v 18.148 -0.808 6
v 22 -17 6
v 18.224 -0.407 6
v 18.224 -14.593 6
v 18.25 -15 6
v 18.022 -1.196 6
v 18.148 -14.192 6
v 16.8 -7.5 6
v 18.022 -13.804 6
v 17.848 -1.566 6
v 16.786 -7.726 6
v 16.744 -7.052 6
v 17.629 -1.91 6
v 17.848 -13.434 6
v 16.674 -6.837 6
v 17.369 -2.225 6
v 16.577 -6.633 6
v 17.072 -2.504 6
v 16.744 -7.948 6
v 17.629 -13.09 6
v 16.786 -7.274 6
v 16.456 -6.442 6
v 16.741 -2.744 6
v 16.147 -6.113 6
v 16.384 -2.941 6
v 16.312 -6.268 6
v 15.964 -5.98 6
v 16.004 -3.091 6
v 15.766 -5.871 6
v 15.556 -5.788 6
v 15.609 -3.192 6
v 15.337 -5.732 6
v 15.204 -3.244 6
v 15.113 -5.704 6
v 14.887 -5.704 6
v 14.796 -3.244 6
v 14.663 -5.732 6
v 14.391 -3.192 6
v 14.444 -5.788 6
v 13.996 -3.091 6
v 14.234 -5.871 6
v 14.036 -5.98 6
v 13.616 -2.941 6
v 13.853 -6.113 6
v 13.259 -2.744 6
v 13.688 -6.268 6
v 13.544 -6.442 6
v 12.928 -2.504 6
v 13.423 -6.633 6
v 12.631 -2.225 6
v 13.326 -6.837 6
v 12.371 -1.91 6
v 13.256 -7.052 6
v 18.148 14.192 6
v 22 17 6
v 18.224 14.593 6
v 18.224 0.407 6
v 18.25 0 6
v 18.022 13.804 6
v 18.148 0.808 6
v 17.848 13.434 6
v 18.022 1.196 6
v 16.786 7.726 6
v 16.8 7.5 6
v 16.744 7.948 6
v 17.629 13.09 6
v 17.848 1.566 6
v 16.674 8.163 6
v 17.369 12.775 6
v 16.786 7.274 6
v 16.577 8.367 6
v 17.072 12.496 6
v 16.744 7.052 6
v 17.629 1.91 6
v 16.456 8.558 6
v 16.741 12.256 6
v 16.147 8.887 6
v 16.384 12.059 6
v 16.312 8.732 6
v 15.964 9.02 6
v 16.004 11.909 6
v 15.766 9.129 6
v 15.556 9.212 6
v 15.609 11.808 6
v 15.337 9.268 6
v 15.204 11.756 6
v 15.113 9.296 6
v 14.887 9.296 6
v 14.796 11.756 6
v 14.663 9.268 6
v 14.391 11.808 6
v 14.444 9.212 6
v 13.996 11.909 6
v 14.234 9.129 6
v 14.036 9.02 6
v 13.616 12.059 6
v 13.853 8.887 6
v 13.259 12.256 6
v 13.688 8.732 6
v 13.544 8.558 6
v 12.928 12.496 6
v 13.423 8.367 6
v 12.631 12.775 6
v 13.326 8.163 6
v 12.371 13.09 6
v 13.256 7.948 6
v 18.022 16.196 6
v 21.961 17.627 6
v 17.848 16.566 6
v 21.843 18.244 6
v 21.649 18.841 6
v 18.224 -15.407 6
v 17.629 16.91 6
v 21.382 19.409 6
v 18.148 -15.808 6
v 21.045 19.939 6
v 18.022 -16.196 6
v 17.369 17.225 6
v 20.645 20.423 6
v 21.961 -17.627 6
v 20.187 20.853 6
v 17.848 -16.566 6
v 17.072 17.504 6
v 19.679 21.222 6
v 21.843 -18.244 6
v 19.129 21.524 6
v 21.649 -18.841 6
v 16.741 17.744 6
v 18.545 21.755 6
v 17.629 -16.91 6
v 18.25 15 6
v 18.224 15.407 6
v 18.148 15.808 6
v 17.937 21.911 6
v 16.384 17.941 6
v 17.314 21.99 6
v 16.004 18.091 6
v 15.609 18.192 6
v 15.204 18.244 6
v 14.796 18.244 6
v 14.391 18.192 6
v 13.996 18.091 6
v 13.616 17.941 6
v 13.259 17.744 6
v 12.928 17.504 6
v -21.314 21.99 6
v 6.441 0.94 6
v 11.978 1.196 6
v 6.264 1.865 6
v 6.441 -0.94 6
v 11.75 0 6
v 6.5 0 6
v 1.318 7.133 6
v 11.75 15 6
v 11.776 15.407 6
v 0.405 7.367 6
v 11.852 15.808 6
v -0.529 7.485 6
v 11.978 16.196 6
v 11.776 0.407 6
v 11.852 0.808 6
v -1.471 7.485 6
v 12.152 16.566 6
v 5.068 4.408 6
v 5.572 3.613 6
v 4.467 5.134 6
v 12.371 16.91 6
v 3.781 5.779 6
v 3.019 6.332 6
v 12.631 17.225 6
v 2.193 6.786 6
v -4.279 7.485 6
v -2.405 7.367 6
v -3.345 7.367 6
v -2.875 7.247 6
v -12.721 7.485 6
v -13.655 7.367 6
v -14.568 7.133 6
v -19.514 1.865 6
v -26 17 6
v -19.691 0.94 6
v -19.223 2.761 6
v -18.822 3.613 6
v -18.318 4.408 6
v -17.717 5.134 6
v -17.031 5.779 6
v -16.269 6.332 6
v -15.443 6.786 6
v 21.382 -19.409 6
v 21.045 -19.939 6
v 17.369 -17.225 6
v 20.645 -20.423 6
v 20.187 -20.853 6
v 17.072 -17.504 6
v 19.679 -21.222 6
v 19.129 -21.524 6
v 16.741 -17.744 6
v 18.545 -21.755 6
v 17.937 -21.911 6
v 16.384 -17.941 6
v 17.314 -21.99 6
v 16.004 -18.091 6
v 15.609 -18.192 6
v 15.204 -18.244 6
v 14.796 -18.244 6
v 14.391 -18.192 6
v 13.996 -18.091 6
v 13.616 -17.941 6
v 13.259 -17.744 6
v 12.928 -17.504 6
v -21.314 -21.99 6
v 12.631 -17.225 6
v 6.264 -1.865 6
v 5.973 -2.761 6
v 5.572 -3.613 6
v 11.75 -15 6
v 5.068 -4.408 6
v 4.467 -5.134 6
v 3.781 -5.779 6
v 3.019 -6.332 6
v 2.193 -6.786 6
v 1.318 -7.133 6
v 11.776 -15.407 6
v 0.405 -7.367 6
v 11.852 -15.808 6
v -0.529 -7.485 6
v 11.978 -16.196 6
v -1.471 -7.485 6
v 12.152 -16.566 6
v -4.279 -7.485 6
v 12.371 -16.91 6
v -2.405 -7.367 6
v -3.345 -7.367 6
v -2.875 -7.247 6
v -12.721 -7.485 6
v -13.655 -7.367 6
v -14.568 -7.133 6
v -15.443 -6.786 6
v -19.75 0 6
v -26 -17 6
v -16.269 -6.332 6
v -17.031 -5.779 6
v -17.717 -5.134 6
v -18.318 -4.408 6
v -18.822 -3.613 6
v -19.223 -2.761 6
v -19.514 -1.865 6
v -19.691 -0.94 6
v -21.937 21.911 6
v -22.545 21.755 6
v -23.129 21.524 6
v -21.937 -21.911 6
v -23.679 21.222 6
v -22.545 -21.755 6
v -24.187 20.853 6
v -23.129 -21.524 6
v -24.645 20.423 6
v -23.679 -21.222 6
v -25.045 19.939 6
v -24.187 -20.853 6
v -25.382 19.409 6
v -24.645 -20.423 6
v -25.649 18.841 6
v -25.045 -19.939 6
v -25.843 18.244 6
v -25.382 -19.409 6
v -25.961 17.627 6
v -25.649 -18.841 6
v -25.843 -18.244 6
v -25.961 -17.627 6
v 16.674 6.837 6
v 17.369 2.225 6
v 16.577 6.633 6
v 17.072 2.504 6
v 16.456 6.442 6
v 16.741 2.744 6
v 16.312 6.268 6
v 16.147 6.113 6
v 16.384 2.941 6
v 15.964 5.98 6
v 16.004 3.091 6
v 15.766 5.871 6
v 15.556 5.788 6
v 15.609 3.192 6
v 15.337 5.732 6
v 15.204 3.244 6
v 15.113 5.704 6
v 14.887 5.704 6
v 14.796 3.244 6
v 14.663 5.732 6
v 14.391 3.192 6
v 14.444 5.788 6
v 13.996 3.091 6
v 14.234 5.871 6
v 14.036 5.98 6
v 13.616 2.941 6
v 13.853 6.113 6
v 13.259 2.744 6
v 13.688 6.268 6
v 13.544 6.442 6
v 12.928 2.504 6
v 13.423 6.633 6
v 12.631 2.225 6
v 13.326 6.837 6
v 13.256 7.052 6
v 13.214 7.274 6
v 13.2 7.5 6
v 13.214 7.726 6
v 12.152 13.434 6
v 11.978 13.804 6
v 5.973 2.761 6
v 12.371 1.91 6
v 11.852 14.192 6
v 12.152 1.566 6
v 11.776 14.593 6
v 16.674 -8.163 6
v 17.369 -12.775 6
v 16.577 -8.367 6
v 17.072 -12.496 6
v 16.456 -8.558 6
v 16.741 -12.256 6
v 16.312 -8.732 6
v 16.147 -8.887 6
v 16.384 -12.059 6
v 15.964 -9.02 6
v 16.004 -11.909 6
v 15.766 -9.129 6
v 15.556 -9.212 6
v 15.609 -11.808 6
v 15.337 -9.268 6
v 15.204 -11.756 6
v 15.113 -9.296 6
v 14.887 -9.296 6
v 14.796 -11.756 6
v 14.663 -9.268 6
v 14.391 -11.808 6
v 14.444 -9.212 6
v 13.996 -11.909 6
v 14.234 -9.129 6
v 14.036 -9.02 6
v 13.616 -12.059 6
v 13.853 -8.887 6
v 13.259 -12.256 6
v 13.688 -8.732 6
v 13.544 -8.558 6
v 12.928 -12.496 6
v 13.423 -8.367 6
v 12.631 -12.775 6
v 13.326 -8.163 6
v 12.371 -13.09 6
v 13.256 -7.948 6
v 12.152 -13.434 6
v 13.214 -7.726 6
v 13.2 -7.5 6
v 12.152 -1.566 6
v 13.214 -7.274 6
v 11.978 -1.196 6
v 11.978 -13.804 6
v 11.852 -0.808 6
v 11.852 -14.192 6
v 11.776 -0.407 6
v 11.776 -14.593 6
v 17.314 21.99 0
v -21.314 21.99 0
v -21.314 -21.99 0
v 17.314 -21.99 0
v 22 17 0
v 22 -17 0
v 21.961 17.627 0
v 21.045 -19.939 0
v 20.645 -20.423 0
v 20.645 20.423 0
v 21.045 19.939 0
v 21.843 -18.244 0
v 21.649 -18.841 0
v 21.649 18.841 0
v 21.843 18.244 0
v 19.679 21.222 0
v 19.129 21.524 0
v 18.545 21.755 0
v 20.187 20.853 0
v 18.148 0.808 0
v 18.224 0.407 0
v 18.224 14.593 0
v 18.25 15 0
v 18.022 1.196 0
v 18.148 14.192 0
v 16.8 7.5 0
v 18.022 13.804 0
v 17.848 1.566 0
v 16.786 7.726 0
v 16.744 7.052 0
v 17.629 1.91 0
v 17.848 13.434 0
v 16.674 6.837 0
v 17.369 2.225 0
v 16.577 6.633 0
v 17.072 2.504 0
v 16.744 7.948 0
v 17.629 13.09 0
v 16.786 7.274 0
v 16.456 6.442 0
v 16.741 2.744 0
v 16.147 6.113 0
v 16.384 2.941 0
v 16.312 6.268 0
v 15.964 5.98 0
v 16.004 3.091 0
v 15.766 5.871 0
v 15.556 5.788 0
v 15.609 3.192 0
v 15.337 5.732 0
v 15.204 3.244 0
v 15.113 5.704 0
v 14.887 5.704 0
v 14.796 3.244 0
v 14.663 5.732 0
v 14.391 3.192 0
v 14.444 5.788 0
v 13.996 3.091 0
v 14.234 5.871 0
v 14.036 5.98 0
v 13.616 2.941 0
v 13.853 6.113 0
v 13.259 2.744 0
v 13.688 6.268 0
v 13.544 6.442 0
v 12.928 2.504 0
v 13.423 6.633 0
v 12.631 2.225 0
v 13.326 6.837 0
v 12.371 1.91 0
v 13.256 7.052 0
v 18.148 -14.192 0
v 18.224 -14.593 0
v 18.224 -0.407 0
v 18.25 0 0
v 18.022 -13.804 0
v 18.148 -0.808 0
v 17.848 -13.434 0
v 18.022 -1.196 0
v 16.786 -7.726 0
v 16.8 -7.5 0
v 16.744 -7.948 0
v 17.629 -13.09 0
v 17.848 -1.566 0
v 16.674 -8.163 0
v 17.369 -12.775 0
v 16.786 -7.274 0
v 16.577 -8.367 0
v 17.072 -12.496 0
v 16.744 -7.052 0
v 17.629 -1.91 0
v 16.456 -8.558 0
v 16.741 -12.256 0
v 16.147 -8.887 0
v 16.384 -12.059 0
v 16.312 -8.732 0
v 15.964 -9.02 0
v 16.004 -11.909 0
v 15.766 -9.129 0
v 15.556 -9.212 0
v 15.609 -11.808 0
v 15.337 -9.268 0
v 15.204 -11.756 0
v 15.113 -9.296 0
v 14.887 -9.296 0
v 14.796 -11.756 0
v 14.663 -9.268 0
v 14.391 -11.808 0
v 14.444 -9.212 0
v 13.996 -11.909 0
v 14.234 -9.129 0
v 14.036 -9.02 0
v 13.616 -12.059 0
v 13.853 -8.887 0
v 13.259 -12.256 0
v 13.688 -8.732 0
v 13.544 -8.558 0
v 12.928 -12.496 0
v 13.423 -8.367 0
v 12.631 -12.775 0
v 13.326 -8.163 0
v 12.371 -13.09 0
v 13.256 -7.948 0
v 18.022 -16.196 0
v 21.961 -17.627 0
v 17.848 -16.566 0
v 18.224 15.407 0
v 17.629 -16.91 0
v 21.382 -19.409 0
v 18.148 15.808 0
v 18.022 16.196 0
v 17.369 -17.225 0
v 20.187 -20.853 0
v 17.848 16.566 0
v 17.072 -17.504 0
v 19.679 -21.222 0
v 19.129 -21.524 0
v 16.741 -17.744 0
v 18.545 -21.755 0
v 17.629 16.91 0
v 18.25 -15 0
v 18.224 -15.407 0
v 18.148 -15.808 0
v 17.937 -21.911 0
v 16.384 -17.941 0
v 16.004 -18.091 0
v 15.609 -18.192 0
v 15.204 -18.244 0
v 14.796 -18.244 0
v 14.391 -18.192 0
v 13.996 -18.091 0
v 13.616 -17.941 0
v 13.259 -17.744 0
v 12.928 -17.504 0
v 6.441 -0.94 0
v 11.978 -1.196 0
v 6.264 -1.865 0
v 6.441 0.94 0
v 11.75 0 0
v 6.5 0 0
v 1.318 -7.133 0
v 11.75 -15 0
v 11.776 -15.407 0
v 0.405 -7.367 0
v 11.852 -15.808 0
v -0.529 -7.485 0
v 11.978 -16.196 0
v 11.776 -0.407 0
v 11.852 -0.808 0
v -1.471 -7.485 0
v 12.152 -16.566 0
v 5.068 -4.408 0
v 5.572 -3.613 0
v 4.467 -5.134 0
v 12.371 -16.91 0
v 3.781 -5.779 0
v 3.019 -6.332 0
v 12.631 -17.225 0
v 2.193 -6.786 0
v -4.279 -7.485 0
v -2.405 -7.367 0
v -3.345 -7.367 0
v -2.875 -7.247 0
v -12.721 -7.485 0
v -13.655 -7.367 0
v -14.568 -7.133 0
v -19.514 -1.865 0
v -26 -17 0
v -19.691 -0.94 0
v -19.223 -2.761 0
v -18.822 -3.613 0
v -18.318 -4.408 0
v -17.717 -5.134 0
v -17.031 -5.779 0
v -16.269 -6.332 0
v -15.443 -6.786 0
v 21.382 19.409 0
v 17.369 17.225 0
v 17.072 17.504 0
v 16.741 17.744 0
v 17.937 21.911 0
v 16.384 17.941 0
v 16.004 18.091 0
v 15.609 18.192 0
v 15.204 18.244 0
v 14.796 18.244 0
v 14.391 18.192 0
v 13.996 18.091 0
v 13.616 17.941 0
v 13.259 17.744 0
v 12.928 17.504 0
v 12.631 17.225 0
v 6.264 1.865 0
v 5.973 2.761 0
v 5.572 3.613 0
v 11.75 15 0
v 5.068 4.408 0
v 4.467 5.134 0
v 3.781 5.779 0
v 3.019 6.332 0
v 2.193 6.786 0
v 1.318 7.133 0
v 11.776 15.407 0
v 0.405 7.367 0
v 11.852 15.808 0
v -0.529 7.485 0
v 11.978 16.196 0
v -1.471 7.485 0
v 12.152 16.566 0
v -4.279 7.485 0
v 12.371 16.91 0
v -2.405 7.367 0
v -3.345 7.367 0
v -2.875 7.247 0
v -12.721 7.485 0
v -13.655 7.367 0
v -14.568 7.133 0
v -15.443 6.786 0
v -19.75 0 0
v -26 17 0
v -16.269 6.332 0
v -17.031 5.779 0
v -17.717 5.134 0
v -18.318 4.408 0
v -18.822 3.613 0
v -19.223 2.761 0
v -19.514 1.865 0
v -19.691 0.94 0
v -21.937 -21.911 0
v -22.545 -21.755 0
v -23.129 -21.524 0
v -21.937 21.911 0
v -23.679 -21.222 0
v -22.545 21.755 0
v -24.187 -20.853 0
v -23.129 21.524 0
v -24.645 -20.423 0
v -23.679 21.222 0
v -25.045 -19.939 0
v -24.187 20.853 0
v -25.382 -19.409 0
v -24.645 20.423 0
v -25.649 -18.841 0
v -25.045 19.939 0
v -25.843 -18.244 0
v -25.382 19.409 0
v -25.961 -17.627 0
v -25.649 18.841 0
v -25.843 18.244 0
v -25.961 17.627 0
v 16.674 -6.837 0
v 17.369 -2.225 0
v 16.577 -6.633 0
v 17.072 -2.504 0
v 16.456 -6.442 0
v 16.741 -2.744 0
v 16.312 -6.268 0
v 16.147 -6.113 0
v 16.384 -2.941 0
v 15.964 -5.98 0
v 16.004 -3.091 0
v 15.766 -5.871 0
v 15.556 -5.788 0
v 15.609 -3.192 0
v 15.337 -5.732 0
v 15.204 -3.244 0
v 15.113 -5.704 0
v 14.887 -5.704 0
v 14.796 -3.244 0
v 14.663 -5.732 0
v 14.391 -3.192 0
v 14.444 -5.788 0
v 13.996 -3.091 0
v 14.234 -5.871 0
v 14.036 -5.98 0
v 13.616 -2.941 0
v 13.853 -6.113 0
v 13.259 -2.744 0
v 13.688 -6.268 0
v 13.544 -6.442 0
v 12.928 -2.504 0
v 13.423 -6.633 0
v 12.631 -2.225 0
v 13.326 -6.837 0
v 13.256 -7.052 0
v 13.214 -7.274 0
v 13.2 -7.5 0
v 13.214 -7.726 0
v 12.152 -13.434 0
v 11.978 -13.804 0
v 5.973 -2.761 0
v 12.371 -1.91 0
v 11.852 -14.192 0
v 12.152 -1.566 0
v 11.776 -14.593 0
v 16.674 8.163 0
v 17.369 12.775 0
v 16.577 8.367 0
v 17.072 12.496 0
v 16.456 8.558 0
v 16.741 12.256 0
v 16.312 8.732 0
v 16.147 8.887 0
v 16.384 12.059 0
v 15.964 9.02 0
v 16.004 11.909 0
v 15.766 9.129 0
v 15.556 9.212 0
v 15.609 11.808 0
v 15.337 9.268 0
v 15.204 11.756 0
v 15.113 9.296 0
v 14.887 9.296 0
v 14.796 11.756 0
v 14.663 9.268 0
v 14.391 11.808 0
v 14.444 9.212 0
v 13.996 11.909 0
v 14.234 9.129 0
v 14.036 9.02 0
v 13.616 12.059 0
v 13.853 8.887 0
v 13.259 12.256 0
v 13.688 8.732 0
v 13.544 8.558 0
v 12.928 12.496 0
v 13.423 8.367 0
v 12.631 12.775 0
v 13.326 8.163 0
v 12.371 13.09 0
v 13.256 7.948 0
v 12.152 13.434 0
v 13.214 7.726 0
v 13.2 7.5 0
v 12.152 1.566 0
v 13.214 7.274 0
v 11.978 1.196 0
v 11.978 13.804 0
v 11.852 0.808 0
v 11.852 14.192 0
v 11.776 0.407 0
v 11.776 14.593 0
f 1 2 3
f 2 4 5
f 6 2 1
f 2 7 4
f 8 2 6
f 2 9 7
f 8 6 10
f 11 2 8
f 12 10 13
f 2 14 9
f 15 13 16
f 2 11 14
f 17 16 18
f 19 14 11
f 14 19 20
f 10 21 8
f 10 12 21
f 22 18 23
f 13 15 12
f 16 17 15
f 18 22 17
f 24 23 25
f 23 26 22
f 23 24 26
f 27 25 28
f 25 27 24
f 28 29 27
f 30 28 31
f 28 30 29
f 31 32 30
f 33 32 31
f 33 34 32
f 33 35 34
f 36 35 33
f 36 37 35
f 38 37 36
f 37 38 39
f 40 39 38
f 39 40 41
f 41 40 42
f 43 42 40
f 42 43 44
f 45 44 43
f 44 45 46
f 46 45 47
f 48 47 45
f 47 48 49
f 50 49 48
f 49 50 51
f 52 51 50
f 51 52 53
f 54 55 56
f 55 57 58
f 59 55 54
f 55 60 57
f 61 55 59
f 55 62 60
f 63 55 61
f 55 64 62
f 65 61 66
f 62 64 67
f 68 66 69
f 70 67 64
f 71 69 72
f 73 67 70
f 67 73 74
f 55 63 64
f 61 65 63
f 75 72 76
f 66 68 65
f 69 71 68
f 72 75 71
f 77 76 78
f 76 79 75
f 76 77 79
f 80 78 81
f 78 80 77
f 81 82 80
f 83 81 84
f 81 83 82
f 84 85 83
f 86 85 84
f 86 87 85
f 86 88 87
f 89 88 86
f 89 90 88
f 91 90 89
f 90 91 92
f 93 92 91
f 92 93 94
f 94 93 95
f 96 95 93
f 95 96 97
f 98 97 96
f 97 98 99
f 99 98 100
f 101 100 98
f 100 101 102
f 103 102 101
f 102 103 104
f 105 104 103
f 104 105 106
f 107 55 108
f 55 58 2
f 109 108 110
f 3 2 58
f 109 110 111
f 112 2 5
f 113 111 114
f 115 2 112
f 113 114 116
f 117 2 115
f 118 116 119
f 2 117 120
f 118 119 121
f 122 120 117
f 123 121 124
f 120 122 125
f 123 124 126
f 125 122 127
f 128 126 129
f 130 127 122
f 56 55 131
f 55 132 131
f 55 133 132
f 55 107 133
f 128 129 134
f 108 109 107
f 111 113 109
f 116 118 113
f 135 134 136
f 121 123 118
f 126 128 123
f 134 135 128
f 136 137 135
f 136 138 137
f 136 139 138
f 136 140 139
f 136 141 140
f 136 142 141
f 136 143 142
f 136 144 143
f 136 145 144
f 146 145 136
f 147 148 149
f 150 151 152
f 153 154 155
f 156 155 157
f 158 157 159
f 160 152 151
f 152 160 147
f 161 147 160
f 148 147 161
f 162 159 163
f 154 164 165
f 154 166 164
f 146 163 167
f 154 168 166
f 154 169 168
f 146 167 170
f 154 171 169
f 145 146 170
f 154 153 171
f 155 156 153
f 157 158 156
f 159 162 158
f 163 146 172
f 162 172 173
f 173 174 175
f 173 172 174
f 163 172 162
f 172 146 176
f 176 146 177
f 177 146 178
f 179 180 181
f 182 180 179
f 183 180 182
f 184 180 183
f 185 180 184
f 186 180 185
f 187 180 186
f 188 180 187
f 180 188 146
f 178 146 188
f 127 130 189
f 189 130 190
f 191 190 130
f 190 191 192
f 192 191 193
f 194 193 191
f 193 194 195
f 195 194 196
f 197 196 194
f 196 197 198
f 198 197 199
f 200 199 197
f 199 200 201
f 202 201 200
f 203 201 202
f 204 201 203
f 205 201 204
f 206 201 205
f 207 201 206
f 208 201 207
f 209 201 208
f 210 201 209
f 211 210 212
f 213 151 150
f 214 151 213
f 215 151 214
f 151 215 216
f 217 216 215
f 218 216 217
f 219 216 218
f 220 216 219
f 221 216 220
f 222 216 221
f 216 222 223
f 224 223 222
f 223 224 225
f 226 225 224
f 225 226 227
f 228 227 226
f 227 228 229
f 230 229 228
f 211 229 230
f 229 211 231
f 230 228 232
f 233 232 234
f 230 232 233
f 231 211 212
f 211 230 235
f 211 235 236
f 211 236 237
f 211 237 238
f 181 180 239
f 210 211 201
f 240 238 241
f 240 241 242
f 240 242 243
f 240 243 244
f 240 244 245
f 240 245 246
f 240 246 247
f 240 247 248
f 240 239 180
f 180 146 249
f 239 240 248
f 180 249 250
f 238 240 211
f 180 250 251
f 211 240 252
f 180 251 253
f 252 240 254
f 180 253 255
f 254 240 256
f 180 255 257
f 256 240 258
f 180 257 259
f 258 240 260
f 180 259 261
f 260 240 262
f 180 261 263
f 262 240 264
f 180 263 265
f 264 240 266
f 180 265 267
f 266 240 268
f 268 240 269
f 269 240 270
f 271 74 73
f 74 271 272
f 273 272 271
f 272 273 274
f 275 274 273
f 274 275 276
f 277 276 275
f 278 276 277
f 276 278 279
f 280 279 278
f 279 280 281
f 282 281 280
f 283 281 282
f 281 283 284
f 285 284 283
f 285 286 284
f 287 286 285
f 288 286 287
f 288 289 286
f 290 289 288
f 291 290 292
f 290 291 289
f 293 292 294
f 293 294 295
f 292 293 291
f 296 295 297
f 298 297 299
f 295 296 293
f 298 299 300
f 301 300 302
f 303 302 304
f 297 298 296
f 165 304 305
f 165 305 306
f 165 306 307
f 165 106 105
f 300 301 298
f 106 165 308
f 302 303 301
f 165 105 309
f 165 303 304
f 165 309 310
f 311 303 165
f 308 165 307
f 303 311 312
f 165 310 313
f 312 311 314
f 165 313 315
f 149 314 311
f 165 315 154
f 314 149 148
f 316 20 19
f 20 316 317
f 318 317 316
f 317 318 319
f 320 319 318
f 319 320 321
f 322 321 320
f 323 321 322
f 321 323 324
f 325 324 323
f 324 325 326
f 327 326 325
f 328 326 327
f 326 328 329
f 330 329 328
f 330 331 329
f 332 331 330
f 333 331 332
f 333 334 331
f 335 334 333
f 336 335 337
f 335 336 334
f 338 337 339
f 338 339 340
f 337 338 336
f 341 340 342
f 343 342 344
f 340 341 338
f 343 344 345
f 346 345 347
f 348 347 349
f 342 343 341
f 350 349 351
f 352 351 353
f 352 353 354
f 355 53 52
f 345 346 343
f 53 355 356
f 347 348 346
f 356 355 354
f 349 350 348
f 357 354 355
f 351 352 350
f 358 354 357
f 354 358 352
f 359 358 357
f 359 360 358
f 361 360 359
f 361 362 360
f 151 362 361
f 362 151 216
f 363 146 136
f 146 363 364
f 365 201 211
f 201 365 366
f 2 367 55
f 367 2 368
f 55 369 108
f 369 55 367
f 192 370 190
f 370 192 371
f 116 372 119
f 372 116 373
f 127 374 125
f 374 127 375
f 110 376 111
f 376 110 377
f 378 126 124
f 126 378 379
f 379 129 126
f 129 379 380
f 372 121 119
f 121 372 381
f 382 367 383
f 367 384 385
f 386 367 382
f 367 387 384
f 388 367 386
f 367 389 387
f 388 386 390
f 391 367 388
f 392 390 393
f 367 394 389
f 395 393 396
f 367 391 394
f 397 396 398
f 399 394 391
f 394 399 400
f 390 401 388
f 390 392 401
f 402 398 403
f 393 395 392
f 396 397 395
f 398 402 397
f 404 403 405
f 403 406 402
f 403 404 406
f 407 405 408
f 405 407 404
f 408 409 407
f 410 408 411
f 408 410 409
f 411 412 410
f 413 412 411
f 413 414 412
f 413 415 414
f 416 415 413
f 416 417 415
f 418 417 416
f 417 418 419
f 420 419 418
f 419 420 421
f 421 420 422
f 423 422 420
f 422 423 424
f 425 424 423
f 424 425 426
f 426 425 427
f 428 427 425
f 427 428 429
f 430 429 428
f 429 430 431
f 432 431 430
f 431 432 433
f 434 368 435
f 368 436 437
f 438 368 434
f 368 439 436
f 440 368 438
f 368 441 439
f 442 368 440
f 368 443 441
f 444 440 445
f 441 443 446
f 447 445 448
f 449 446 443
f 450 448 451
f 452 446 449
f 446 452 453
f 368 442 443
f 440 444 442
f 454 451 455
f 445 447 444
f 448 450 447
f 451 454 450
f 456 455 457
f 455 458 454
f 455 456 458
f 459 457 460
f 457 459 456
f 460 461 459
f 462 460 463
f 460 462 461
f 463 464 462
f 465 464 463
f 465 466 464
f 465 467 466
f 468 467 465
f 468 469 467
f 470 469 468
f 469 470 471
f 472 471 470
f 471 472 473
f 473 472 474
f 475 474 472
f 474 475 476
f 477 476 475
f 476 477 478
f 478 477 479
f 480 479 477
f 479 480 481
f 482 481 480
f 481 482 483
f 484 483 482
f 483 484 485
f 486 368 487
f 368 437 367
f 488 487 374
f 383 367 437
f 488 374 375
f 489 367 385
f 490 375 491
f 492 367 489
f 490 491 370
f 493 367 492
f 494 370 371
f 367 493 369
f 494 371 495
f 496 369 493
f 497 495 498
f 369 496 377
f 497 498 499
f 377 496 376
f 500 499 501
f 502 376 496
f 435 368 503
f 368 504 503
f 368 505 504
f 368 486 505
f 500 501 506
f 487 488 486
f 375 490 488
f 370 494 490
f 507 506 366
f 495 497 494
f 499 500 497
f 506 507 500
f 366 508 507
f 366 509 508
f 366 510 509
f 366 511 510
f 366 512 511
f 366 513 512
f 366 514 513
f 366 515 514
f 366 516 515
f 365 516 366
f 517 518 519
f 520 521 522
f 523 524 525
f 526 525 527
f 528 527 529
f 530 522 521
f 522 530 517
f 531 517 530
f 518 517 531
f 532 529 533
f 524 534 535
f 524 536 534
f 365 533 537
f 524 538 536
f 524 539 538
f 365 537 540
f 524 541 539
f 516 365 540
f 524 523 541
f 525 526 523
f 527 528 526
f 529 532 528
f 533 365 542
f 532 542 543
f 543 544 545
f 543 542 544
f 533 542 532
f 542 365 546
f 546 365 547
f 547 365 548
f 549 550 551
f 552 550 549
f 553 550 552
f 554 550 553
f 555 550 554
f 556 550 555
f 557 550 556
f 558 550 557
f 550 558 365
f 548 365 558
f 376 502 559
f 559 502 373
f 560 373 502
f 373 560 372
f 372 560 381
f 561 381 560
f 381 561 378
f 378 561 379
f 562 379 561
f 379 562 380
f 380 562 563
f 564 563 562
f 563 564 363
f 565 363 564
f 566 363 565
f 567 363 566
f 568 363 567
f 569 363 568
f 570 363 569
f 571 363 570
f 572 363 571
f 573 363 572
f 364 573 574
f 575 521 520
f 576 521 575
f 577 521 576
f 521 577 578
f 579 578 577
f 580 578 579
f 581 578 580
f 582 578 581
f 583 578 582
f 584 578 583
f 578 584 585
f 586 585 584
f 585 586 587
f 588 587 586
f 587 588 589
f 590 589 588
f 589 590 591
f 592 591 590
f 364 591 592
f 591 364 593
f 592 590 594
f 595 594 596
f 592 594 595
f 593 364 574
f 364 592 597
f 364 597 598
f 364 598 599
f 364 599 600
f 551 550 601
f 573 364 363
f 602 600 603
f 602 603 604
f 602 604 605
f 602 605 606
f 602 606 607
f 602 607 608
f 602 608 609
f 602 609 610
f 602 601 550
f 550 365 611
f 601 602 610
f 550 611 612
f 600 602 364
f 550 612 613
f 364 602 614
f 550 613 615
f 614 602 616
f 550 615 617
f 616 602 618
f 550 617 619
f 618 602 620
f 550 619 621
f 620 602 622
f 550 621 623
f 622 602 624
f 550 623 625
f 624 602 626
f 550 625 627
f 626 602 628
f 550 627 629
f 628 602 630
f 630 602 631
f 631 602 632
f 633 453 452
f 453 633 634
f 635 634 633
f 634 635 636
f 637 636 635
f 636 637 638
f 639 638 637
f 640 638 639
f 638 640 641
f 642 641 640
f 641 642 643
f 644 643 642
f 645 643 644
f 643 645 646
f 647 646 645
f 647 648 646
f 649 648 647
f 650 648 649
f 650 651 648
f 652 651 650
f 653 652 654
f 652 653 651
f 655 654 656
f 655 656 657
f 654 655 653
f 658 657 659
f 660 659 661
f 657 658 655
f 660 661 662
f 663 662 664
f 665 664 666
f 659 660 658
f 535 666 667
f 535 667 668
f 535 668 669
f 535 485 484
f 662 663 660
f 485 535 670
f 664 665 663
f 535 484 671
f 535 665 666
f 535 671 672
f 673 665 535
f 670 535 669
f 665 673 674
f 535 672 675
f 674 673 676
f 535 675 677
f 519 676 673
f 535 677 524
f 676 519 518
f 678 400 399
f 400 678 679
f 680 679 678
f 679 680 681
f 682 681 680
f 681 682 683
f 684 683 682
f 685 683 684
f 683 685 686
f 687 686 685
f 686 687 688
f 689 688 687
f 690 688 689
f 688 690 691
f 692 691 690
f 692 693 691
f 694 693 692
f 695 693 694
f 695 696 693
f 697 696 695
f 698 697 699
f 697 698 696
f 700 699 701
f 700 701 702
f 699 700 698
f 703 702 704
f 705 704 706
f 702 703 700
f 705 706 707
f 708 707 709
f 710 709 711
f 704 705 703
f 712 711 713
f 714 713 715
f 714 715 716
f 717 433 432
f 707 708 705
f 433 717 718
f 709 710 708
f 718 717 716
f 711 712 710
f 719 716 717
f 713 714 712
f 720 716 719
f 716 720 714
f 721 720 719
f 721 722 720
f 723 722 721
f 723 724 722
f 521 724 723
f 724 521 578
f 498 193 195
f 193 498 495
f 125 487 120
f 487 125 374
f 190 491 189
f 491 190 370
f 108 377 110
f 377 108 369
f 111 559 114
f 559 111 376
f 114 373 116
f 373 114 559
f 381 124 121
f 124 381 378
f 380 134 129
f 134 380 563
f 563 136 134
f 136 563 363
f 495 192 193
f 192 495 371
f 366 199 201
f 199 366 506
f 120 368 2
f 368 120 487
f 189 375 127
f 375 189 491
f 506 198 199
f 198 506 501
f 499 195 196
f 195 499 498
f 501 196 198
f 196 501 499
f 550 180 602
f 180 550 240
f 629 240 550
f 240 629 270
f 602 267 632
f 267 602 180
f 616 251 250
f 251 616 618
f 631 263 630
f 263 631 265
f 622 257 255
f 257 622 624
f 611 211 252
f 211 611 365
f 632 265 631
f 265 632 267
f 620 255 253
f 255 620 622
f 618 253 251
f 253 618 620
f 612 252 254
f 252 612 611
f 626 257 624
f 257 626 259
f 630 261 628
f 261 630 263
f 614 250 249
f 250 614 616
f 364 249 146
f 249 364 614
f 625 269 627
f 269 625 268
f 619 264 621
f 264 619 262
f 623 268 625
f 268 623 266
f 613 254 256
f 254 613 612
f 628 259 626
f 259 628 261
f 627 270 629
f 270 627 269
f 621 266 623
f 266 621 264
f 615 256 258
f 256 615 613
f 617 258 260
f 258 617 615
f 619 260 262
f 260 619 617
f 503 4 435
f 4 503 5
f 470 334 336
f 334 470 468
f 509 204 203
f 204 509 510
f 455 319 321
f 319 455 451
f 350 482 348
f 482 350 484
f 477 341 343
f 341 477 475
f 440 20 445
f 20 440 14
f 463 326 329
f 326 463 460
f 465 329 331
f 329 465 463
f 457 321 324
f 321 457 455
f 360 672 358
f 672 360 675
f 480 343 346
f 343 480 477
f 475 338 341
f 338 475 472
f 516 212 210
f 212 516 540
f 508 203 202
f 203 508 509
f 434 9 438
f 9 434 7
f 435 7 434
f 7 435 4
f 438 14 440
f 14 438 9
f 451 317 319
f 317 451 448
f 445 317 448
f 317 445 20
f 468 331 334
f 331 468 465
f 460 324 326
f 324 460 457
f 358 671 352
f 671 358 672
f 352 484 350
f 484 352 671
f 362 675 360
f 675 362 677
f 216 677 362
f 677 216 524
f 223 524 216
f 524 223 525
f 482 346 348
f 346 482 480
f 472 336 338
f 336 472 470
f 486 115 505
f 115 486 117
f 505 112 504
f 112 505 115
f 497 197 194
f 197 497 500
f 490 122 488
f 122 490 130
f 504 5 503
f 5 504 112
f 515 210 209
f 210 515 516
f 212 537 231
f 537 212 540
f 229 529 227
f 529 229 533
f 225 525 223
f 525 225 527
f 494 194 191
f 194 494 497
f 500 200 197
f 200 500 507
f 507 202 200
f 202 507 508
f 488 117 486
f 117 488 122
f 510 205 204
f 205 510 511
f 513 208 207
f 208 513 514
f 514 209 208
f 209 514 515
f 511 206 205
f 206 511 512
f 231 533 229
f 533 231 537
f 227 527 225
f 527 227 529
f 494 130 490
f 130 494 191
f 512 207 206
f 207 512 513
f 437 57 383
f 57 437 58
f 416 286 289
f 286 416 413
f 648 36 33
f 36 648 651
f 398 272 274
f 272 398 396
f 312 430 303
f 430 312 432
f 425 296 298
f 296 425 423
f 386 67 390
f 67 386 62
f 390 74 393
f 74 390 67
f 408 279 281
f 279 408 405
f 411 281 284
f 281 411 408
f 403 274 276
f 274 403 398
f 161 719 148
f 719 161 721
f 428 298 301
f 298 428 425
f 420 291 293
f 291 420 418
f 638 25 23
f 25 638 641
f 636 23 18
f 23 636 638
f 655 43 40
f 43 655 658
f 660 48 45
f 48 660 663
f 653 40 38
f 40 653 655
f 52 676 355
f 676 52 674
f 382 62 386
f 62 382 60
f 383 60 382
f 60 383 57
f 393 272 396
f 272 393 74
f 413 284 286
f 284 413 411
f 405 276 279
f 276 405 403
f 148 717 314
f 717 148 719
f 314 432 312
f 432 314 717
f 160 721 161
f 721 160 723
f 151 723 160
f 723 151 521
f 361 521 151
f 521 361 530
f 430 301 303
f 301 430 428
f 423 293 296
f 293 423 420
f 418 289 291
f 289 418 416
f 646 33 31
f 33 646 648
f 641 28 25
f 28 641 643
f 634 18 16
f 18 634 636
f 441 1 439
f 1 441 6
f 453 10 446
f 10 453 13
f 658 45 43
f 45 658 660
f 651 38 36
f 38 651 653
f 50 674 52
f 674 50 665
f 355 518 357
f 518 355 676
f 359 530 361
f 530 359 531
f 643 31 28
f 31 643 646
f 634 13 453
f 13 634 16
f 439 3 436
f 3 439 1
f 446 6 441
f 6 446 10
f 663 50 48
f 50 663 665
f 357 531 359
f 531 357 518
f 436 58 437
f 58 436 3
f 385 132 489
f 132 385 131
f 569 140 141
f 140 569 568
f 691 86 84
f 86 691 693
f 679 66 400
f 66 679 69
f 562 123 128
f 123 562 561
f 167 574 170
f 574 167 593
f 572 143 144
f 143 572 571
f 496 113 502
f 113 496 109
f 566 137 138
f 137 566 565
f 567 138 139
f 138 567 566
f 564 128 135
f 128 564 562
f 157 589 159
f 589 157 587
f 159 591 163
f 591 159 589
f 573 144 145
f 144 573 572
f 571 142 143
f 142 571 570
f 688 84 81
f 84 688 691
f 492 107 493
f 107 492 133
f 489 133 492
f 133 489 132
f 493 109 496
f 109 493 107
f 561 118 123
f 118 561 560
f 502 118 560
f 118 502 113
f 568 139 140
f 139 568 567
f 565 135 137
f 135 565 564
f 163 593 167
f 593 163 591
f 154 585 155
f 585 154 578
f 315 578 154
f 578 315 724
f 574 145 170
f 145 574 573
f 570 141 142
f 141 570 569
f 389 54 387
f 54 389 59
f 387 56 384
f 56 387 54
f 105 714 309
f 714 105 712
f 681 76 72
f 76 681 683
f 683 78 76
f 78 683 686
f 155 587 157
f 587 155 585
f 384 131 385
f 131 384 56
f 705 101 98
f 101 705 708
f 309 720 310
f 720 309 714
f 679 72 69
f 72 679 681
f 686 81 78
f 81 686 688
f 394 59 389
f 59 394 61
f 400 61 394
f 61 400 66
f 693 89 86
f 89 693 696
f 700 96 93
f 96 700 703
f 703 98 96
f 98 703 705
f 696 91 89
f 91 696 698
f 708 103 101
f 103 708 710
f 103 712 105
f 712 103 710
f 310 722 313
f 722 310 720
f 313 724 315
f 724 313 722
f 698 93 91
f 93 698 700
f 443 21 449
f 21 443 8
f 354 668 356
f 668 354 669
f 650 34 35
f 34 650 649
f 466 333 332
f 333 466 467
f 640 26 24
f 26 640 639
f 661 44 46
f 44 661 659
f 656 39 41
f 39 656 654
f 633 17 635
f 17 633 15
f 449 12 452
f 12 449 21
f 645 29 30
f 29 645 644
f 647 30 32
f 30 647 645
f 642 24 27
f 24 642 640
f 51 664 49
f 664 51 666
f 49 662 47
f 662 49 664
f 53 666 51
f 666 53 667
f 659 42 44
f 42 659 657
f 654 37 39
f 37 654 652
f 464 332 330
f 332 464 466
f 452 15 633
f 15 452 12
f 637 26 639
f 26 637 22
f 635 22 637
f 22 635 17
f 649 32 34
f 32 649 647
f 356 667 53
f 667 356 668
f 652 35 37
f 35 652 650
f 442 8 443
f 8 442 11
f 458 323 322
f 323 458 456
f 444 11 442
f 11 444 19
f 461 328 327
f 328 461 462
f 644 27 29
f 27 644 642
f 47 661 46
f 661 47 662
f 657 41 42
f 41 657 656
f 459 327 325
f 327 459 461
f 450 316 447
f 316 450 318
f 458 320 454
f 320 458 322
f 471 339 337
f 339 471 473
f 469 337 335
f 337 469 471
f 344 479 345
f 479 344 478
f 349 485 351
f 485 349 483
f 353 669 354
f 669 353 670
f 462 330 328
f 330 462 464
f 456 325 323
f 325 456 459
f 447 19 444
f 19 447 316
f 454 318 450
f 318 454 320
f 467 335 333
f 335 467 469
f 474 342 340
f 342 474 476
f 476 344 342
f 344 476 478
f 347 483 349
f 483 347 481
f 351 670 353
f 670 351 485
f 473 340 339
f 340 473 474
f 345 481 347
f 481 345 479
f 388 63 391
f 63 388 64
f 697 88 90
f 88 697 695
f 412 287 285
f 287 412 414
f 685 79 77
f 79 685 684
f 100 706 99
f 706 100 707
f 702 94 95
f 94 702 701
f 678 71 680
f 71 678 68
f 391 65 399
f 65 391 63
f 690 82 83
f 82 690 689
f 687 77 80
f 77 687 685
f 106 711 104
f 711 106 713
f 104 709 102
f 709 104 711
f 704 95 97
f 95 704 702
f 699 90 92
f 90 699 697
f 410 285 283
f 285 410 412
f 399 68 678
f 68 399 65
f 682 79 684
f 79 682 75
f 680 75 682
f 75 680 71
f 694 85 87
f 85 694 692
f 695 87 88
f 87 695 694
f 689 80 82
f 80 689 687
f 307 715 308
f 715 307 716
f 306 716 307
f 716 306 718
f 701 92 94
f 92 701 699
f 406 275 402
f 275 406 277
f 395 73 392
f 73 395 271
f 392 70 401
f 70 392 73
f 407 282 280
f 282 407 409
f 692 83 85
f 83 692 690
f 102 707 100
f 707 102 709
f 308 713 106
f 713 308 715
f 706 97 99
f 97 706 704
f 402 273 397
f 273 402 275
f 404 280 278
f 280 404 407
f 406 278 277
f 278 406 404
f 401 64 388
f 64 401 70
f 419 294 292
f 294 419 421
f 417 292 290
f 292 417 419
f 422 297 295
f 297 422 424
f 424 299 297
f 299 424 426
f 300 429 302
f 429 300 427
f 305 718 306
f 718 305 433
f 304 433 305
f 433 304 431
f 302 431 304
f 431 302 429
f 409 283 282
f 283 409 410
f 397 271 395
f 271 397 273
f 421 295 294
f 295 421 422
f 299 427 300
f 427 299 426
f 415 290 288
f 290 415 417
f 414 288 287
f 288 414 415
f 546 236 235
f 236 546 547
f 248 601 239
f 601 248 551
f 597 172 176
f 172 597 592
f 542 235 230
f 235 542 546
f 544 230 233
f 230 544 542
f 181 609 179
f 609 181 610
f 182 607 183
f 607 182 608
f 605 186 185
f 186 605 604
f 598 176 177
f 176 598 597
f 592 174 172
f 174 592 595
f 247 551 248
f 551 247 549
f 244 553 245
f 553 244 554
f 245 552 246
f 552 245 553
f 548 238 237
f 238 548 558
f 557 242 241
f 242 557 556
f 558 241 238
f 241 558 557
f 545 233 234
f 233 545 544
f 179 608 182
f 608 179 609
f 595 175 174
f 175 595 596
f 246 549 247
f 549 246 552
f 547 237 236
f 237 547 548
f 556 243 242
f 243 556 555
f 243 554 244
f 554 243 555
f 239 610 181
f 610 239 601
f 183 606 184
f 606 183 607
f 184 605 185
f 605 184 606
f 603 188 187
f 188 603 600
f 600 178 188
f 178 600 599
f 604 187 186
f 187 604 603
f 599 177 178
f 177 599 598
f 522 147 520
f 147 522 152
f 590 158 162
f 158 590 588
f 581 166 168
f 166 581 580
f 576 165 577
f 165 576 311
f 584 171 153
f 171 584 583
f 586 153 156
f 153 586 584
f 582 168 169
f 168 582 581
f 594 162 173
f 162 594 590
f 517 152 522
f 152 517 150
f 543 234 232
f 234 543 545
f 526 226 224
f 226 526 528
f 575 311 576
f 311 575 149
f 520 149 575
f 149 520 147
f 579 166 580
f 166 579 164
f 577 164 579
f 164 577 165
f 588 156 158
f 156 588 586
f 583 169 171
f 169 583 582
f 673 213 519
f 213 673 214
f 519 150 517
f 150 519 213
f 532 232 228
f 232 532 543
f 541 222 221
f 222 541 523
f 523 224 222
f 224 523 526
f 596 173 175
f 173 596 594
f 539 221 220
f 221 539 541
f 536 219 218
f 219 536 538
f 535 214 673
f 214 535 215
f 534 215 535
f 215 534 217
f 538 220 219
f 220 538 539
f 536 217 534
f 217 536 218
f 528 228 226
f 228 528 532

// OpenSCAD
$fn = 50;


difference() {
	union() {
		hull() {
			translate(v = [-17.0000000000, 17.0000000000, 0]) {
				cylinder(h = 6, r = 5);
			}
			translate(v = [17.0000000000, 17.0000000000, 0]) {
				cylinder(h = 6, r = 5);
			}
			translate(v = [-17.0000000000, -17.0000000000, 0]) {
				cylinder(h = 6, r = 5);
			}
			translate(v = [17.0000000000, -17.0000000000, 0]) {
				cylinder(h = 6, r = 5);
			}
		}
		translate(v = [-4.0000000000, 0, 0]) {
			hull() {
				translate(v = [-17.0000000000, 17.0000000000, 0]) {
					cylinder(h = 6, r = 5);
				}
				translate(v = [17.0000000000, 17.0000000000, 0]) {
					cylinder(h = 6, r = 5);
				}
				translate(v = [-17.0000000000, -17.0000000000, 0]) {
					cylinder(h = 6, r = 5);
				}
				translate(v = [17.0000000000, -17.0000000000, 0]) {
					cylinder(h = 6, r = 5);
				}
			}
		}
	}
	union() {
		translate(v = [15.0000000000, -15.0000000000, -100.0000000000]) {
			cylinder(h = 200, r = 3.2500000000);
		}
		translate(v = [15.0000000000, 0.0000000000, -100.0000000000]) {
			cylinder(h = 200, r = 3.2500000000);
		}
		translate(v = [15.0000000000, 15.0000000000, -100.0000000000]) {
			cylinder(h = 200, r = 3.2500000000);
		}
		translate(v = [15.0000000000, -15.0000000000, -100.0000000000]) {
			cylinder(h = 200, r = 3.2500000000);
		}
		translate(v = [15.0000000000, 0.0000000000, -100.0000000000]) {
			cylinder(h = 200, r = 3.2500000000);
		}
		translate(v = [15.0000000000, 15.0000000000, -100.0000000000]) {
			cylinder(h = 200, r = 3.2500000000);
		}
		translate(v = [15.0000000000, -15.0000000000, -100.0000000000]) {
			cylinder(h = 200, r = 1.8000000000);
		}
		translate(v = [15.0000000000, -7.5000000000, -100.0000000000]) {
			cylinder(h = 200, r = 1.8000000000);
		}
		translate(v = [15.0000000000, 0.0000000000, -100.0000000000]) {
			cylinder(h = 200, r = 1.8000000000);
		}
		translate(v = [15.0000000000, 7.5000000000, -100.0000000000]) {
			cylinder(h = 200, r = 1.8000000000);
		}
		translate(v = [15.0000000000, 15.0000000000, -100.0000000000]) {
			cylinder(h = 200, r = 1.8000000000);
		}
		translate(v = [15.0000000000, -15.0000000000, -100.0000000000]) {
			cylinder(h = 200, r = 1.8000000000);
		}
		translate(v = [15.0000000000, -7.5000000000, -100.0000000000]) {
			cylinder(h = 200, r = 1.8000000000);
		}
		translate(v = [15.0000000000, 0.0000000000, -100.0000000000]) {
			cylinder(h = 200, r = 1.8000000000);
		}
		translate(v = [15.0000000000, 7.5000000000, -100.0000000000]) {
			cylinder(h = 200, r = 1.8000000000);
		}
		translate(v = [15.0000000000, 15.0000000000, -100.0000000000]) {
			cylinder(h = 200, r = 1.8000000000);
		}
		translate(v = [15.0000000000, -15.0000000000, -100.0000000000]) {
			cylinder(h = 200, r = 1.8000000000);
		}
		translate(v = [15.0000000000, -7.5000000000, -100.0000000000]) {
			cylinder(h = 200, r = 1.8000000000);
		}
		translate(v = [15.0000000000, 0.0000000000, -100.0000000000]) {
			cylinder(h = 200, r = 1.8000000000);
		}
		translate(v = [15.0000000000, 7.5000000000, -100.0000000000]) {
			cylinder(h = 200, r = 1.8000000000);
		}
		translate(v = [15.0000000000, 15.0000000000, -100.0000000000]) {
			cylinder(h = 200, r = 1.8000000000);
		}
		translate(v = [-8.5000000000, 0, 0]) {
			hull() {
				translate(v = [-3.7500000000, 0.0000000000, 0]) {
					cylinder(h = 6, r = 7.5000000000);
				}
				translate(v = [3.7500000000, 0.0000000000, 0]) {
					cylinder(h = 6, r = 7.5000000000);
				}
				translate(v = [-3.7500000000, -0.0000000000, 0]) {
					cylinder(h = 6, r = 7.5000000000);
				}
				translate(v = [3.7500000000, -0.0000000000, 0]) {
					cylinder(h = 6, r = 7.5000000000);
				}
			}
		}
		translate(v = [-1.0000000000, 0, 0.0000000000]) {
			cylinder(h = 6, r = 7.5000000000);
		}
	}
}
